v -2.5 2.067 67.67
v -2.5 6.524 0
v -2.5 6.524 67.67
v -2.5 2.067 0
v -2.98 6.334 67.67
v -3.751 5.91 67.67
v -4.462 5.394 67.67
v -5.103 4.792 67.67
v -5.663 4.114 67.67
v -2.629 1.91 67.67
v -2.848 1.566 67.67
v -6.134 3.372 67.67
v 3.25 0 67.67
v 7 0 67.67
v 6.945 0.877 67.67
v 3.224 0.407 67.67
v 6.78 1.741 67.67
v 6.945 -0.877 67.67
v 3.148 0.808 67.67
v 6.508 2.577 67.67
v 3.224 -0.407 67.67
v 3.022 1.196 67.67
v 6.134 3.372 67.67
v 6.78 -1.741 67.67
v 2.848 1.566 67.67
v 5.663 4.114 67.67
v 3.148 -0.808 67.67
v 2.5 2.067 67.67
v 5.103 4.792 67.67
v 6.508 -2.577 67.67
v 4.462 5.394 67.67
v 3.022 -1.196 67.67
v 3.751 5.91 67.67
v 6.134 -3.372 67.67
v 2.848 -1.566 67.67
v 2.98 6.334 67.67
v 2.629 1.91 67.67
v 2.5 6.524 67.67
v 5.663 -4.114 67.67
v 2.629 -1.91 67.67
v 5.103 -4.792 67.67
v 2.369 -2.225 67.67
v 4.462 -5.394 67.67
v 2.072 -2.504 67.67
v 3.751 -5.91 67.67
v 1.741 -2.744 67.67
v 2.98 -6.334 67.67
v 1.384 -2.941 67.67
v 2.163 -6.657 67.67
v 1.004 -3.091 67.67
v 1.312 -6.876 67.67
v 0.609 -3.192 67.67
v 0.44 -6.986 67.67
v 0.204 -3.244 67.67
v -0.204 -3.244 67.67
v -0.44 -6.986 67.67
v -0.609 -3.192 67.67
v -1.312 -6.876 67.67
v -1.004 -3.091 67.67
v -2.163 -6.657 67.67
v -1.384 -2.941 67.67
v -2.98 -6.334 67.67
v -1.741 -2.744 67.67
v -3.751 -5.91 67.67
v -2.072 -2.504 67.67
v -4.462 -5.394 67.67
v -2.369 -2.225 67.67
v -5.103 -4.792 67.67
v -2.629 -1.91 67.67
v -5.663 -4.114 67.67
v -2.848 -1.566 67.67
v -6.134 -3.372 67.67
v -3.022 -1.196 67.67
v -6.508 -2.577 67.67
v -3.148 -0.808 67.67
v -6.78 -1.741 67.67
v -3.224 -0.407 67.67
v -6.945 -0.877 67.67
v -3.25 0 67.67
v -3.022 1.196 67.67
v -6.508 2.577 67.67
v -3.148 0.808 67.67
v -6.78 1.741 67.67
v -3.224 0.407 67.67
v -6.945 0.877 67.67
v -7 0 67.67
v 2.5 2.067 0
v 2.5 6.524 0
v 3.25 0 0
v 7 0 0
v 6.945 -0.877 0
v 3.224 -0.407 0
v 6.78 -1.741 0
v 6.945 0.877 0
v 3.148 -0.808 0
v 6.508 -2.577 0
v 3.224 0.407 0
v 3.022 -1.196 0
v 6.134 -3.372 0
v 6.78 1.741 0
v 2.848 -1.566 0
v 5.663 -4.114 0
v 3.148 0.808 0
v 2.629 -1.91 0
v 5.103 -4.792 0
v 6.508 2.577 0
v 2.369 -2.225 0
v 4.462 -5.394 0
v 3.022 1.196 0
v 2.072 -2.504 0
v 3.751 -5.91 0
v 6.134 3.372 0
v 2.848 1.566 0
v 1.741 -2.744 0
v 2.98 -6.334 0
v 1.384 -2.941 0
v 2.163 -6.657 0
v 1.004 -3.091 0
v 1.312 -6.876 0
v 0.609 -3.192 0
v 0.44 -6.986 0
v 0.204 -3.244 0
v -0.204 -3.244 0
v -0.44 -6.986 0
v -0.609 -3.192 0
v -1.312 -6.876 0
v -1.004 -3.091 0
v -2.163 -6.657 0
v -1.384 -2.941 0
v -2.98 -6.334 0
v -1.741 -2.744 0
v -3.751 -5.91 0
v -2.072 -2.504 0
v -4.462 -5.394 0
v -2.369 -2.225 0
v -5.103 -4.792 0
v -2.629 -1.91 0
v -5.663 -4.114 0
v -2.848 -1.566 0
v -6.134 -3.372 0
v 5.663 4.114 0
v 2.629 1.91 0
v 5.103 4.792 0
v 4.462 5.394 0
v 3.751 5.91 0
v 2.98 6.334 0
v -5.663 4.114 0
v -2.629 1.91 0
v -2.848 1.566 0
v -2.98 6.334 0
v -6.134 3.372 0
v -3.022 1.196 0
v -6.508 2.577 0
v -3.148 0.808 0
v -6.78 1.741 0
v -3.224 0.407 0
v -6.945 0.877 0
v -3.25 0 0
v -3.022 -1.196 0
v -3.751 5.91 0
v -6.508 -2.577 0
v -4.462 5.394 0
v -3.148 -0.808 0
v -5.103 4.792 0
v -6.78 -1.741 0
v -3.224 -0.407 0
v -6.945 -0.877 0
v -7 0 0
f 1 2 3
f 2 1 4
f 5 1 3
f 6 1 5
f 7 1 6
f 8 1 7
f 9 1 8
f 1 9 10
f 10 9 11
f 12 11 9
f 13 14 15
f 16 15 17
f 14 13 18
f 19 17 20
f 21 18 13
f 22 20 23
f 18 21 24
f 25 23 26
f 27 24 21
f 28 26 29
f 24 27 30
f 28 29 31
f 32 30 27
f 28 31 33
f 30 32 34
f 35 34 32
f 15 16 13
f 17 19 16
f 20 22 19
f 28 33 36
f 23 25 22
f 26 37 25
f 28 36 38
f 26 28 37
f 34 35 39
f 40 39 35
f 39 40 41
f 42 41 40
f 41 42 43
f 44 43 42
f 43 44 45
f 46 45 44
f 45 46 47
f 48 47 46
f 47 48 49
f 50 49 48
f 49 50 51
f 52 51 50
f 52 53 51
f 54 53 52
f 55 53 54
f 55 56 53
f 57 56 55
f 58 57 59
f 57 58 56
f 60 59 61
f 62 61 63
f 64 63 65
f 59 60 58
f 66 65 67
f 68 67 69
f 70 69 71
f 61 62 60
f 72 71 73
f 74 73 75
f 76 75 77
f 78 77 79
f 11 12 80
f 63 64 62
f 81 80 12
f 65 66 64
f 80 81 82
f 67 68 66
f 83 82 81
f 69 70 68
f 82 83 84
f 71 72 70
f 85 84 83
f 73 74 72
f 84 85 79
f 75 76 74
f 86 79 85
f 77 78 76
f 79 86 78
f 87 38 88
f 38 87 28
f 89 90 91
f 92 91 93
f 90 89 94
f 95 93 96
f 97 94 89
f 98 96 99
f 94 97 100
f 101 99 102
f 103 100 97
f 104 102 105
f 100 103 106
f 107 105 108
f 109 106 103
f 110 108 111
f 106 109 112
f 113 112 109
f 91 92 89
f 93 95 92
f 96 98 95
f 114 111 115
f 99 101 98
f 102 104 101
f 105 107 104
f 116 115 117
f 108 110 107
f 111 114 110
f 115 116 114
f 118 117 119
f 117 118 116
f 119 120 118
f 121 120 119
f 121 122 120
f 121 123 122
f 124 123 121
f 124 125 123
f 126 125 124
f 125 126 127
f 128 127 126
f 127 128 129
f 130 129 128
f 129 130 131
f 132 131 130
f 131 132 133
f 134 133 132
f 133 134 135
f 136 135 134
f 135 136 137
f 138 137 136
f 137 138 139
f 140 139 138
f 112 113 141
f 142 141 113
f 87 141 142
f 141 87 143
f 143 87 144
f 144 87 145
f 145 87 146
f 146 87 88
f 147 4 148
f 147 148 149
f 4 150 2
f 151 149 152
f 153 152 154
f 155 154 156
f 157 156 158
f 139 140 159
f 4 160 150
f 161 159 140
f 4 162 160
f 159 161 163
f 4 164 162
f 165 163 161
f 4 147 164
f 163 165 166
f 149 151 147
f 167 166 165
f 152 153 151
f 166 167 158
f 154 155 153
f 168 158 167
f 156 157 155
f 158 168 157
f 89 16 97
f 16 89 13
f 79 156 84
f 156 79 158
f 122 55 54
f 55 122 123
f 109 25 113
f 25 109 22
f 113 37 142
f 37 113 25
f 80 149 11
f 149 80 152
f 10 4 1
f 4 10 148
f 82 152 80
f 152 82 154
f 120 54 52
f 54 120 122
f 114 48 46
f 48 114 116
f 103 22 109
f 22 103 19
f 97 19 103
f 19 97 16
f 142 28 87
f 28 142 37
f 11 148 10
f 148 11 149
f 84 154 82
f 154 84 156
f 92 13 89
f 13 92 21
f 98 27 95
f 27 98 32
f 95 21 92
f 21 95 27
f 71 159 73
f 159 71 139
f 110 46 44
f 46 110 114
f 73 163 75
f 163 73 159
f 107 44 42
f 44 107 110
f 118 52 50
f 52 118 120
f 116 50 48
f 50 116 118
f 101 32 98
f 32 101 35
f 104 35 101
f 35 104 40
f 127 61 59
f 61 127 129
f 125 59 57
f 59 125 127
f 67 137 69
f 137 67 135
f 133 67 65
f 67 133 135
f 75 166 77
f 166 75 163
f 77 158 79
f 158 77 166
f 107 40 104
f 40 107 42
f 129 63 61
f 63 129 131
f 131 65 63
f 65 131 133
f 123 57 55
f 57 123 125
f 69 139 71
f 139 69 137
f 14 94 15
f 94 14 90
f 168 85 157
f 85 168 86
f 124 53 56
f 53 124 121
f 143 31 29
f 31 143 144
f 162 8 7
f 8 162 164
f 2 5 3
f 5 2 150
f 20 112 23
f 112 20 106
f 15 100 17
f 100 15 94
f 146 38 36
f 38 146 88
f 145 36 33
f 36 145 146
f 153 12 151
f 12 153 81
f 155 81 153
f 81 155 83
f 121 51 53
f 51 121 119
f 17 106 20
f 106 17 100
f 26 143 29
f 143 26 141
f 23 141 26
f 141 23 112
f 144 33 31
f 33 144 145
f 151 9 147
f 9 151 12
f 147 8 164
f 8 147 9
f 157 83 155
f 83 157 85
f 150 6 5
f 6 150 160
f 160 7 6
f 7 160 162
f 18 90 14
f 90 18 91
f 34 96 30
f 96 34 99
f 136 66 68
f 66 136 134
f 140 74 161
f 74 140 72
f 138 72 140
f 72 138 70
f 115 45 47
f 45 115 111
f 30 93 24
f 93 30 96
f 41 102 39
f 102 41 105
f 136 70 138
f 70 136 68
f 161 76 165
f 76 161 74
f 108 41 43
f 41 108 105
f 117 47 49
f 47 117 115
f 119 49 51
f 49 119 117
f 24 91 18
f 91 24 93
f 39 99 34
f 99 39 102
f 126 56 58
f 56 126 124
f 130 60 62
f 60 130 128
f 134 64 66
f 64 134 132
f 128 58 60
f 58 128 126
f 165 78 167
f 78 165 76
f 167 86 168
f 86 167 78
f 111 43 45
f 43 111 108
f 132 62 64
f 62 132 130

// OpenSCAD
$fn = 50;


difference() {
	union() {
		cylinder(h = 67.6700000000, r = 7.0000000000);
	}
	union() {
		#translate(v = [-2.5000000000, 0.0000000000, 0]) {
			cube(size = [5, 20, 67.6700000000]);
		}
		translate(v = [0, 0, -100]) {
			cylinder(h = 200, r = 3.2500000000);
		}
		translate(v = [0, 0, -100]) {
			cylinder(h = 200, r = 1.8000000000);
		}
	}
}
